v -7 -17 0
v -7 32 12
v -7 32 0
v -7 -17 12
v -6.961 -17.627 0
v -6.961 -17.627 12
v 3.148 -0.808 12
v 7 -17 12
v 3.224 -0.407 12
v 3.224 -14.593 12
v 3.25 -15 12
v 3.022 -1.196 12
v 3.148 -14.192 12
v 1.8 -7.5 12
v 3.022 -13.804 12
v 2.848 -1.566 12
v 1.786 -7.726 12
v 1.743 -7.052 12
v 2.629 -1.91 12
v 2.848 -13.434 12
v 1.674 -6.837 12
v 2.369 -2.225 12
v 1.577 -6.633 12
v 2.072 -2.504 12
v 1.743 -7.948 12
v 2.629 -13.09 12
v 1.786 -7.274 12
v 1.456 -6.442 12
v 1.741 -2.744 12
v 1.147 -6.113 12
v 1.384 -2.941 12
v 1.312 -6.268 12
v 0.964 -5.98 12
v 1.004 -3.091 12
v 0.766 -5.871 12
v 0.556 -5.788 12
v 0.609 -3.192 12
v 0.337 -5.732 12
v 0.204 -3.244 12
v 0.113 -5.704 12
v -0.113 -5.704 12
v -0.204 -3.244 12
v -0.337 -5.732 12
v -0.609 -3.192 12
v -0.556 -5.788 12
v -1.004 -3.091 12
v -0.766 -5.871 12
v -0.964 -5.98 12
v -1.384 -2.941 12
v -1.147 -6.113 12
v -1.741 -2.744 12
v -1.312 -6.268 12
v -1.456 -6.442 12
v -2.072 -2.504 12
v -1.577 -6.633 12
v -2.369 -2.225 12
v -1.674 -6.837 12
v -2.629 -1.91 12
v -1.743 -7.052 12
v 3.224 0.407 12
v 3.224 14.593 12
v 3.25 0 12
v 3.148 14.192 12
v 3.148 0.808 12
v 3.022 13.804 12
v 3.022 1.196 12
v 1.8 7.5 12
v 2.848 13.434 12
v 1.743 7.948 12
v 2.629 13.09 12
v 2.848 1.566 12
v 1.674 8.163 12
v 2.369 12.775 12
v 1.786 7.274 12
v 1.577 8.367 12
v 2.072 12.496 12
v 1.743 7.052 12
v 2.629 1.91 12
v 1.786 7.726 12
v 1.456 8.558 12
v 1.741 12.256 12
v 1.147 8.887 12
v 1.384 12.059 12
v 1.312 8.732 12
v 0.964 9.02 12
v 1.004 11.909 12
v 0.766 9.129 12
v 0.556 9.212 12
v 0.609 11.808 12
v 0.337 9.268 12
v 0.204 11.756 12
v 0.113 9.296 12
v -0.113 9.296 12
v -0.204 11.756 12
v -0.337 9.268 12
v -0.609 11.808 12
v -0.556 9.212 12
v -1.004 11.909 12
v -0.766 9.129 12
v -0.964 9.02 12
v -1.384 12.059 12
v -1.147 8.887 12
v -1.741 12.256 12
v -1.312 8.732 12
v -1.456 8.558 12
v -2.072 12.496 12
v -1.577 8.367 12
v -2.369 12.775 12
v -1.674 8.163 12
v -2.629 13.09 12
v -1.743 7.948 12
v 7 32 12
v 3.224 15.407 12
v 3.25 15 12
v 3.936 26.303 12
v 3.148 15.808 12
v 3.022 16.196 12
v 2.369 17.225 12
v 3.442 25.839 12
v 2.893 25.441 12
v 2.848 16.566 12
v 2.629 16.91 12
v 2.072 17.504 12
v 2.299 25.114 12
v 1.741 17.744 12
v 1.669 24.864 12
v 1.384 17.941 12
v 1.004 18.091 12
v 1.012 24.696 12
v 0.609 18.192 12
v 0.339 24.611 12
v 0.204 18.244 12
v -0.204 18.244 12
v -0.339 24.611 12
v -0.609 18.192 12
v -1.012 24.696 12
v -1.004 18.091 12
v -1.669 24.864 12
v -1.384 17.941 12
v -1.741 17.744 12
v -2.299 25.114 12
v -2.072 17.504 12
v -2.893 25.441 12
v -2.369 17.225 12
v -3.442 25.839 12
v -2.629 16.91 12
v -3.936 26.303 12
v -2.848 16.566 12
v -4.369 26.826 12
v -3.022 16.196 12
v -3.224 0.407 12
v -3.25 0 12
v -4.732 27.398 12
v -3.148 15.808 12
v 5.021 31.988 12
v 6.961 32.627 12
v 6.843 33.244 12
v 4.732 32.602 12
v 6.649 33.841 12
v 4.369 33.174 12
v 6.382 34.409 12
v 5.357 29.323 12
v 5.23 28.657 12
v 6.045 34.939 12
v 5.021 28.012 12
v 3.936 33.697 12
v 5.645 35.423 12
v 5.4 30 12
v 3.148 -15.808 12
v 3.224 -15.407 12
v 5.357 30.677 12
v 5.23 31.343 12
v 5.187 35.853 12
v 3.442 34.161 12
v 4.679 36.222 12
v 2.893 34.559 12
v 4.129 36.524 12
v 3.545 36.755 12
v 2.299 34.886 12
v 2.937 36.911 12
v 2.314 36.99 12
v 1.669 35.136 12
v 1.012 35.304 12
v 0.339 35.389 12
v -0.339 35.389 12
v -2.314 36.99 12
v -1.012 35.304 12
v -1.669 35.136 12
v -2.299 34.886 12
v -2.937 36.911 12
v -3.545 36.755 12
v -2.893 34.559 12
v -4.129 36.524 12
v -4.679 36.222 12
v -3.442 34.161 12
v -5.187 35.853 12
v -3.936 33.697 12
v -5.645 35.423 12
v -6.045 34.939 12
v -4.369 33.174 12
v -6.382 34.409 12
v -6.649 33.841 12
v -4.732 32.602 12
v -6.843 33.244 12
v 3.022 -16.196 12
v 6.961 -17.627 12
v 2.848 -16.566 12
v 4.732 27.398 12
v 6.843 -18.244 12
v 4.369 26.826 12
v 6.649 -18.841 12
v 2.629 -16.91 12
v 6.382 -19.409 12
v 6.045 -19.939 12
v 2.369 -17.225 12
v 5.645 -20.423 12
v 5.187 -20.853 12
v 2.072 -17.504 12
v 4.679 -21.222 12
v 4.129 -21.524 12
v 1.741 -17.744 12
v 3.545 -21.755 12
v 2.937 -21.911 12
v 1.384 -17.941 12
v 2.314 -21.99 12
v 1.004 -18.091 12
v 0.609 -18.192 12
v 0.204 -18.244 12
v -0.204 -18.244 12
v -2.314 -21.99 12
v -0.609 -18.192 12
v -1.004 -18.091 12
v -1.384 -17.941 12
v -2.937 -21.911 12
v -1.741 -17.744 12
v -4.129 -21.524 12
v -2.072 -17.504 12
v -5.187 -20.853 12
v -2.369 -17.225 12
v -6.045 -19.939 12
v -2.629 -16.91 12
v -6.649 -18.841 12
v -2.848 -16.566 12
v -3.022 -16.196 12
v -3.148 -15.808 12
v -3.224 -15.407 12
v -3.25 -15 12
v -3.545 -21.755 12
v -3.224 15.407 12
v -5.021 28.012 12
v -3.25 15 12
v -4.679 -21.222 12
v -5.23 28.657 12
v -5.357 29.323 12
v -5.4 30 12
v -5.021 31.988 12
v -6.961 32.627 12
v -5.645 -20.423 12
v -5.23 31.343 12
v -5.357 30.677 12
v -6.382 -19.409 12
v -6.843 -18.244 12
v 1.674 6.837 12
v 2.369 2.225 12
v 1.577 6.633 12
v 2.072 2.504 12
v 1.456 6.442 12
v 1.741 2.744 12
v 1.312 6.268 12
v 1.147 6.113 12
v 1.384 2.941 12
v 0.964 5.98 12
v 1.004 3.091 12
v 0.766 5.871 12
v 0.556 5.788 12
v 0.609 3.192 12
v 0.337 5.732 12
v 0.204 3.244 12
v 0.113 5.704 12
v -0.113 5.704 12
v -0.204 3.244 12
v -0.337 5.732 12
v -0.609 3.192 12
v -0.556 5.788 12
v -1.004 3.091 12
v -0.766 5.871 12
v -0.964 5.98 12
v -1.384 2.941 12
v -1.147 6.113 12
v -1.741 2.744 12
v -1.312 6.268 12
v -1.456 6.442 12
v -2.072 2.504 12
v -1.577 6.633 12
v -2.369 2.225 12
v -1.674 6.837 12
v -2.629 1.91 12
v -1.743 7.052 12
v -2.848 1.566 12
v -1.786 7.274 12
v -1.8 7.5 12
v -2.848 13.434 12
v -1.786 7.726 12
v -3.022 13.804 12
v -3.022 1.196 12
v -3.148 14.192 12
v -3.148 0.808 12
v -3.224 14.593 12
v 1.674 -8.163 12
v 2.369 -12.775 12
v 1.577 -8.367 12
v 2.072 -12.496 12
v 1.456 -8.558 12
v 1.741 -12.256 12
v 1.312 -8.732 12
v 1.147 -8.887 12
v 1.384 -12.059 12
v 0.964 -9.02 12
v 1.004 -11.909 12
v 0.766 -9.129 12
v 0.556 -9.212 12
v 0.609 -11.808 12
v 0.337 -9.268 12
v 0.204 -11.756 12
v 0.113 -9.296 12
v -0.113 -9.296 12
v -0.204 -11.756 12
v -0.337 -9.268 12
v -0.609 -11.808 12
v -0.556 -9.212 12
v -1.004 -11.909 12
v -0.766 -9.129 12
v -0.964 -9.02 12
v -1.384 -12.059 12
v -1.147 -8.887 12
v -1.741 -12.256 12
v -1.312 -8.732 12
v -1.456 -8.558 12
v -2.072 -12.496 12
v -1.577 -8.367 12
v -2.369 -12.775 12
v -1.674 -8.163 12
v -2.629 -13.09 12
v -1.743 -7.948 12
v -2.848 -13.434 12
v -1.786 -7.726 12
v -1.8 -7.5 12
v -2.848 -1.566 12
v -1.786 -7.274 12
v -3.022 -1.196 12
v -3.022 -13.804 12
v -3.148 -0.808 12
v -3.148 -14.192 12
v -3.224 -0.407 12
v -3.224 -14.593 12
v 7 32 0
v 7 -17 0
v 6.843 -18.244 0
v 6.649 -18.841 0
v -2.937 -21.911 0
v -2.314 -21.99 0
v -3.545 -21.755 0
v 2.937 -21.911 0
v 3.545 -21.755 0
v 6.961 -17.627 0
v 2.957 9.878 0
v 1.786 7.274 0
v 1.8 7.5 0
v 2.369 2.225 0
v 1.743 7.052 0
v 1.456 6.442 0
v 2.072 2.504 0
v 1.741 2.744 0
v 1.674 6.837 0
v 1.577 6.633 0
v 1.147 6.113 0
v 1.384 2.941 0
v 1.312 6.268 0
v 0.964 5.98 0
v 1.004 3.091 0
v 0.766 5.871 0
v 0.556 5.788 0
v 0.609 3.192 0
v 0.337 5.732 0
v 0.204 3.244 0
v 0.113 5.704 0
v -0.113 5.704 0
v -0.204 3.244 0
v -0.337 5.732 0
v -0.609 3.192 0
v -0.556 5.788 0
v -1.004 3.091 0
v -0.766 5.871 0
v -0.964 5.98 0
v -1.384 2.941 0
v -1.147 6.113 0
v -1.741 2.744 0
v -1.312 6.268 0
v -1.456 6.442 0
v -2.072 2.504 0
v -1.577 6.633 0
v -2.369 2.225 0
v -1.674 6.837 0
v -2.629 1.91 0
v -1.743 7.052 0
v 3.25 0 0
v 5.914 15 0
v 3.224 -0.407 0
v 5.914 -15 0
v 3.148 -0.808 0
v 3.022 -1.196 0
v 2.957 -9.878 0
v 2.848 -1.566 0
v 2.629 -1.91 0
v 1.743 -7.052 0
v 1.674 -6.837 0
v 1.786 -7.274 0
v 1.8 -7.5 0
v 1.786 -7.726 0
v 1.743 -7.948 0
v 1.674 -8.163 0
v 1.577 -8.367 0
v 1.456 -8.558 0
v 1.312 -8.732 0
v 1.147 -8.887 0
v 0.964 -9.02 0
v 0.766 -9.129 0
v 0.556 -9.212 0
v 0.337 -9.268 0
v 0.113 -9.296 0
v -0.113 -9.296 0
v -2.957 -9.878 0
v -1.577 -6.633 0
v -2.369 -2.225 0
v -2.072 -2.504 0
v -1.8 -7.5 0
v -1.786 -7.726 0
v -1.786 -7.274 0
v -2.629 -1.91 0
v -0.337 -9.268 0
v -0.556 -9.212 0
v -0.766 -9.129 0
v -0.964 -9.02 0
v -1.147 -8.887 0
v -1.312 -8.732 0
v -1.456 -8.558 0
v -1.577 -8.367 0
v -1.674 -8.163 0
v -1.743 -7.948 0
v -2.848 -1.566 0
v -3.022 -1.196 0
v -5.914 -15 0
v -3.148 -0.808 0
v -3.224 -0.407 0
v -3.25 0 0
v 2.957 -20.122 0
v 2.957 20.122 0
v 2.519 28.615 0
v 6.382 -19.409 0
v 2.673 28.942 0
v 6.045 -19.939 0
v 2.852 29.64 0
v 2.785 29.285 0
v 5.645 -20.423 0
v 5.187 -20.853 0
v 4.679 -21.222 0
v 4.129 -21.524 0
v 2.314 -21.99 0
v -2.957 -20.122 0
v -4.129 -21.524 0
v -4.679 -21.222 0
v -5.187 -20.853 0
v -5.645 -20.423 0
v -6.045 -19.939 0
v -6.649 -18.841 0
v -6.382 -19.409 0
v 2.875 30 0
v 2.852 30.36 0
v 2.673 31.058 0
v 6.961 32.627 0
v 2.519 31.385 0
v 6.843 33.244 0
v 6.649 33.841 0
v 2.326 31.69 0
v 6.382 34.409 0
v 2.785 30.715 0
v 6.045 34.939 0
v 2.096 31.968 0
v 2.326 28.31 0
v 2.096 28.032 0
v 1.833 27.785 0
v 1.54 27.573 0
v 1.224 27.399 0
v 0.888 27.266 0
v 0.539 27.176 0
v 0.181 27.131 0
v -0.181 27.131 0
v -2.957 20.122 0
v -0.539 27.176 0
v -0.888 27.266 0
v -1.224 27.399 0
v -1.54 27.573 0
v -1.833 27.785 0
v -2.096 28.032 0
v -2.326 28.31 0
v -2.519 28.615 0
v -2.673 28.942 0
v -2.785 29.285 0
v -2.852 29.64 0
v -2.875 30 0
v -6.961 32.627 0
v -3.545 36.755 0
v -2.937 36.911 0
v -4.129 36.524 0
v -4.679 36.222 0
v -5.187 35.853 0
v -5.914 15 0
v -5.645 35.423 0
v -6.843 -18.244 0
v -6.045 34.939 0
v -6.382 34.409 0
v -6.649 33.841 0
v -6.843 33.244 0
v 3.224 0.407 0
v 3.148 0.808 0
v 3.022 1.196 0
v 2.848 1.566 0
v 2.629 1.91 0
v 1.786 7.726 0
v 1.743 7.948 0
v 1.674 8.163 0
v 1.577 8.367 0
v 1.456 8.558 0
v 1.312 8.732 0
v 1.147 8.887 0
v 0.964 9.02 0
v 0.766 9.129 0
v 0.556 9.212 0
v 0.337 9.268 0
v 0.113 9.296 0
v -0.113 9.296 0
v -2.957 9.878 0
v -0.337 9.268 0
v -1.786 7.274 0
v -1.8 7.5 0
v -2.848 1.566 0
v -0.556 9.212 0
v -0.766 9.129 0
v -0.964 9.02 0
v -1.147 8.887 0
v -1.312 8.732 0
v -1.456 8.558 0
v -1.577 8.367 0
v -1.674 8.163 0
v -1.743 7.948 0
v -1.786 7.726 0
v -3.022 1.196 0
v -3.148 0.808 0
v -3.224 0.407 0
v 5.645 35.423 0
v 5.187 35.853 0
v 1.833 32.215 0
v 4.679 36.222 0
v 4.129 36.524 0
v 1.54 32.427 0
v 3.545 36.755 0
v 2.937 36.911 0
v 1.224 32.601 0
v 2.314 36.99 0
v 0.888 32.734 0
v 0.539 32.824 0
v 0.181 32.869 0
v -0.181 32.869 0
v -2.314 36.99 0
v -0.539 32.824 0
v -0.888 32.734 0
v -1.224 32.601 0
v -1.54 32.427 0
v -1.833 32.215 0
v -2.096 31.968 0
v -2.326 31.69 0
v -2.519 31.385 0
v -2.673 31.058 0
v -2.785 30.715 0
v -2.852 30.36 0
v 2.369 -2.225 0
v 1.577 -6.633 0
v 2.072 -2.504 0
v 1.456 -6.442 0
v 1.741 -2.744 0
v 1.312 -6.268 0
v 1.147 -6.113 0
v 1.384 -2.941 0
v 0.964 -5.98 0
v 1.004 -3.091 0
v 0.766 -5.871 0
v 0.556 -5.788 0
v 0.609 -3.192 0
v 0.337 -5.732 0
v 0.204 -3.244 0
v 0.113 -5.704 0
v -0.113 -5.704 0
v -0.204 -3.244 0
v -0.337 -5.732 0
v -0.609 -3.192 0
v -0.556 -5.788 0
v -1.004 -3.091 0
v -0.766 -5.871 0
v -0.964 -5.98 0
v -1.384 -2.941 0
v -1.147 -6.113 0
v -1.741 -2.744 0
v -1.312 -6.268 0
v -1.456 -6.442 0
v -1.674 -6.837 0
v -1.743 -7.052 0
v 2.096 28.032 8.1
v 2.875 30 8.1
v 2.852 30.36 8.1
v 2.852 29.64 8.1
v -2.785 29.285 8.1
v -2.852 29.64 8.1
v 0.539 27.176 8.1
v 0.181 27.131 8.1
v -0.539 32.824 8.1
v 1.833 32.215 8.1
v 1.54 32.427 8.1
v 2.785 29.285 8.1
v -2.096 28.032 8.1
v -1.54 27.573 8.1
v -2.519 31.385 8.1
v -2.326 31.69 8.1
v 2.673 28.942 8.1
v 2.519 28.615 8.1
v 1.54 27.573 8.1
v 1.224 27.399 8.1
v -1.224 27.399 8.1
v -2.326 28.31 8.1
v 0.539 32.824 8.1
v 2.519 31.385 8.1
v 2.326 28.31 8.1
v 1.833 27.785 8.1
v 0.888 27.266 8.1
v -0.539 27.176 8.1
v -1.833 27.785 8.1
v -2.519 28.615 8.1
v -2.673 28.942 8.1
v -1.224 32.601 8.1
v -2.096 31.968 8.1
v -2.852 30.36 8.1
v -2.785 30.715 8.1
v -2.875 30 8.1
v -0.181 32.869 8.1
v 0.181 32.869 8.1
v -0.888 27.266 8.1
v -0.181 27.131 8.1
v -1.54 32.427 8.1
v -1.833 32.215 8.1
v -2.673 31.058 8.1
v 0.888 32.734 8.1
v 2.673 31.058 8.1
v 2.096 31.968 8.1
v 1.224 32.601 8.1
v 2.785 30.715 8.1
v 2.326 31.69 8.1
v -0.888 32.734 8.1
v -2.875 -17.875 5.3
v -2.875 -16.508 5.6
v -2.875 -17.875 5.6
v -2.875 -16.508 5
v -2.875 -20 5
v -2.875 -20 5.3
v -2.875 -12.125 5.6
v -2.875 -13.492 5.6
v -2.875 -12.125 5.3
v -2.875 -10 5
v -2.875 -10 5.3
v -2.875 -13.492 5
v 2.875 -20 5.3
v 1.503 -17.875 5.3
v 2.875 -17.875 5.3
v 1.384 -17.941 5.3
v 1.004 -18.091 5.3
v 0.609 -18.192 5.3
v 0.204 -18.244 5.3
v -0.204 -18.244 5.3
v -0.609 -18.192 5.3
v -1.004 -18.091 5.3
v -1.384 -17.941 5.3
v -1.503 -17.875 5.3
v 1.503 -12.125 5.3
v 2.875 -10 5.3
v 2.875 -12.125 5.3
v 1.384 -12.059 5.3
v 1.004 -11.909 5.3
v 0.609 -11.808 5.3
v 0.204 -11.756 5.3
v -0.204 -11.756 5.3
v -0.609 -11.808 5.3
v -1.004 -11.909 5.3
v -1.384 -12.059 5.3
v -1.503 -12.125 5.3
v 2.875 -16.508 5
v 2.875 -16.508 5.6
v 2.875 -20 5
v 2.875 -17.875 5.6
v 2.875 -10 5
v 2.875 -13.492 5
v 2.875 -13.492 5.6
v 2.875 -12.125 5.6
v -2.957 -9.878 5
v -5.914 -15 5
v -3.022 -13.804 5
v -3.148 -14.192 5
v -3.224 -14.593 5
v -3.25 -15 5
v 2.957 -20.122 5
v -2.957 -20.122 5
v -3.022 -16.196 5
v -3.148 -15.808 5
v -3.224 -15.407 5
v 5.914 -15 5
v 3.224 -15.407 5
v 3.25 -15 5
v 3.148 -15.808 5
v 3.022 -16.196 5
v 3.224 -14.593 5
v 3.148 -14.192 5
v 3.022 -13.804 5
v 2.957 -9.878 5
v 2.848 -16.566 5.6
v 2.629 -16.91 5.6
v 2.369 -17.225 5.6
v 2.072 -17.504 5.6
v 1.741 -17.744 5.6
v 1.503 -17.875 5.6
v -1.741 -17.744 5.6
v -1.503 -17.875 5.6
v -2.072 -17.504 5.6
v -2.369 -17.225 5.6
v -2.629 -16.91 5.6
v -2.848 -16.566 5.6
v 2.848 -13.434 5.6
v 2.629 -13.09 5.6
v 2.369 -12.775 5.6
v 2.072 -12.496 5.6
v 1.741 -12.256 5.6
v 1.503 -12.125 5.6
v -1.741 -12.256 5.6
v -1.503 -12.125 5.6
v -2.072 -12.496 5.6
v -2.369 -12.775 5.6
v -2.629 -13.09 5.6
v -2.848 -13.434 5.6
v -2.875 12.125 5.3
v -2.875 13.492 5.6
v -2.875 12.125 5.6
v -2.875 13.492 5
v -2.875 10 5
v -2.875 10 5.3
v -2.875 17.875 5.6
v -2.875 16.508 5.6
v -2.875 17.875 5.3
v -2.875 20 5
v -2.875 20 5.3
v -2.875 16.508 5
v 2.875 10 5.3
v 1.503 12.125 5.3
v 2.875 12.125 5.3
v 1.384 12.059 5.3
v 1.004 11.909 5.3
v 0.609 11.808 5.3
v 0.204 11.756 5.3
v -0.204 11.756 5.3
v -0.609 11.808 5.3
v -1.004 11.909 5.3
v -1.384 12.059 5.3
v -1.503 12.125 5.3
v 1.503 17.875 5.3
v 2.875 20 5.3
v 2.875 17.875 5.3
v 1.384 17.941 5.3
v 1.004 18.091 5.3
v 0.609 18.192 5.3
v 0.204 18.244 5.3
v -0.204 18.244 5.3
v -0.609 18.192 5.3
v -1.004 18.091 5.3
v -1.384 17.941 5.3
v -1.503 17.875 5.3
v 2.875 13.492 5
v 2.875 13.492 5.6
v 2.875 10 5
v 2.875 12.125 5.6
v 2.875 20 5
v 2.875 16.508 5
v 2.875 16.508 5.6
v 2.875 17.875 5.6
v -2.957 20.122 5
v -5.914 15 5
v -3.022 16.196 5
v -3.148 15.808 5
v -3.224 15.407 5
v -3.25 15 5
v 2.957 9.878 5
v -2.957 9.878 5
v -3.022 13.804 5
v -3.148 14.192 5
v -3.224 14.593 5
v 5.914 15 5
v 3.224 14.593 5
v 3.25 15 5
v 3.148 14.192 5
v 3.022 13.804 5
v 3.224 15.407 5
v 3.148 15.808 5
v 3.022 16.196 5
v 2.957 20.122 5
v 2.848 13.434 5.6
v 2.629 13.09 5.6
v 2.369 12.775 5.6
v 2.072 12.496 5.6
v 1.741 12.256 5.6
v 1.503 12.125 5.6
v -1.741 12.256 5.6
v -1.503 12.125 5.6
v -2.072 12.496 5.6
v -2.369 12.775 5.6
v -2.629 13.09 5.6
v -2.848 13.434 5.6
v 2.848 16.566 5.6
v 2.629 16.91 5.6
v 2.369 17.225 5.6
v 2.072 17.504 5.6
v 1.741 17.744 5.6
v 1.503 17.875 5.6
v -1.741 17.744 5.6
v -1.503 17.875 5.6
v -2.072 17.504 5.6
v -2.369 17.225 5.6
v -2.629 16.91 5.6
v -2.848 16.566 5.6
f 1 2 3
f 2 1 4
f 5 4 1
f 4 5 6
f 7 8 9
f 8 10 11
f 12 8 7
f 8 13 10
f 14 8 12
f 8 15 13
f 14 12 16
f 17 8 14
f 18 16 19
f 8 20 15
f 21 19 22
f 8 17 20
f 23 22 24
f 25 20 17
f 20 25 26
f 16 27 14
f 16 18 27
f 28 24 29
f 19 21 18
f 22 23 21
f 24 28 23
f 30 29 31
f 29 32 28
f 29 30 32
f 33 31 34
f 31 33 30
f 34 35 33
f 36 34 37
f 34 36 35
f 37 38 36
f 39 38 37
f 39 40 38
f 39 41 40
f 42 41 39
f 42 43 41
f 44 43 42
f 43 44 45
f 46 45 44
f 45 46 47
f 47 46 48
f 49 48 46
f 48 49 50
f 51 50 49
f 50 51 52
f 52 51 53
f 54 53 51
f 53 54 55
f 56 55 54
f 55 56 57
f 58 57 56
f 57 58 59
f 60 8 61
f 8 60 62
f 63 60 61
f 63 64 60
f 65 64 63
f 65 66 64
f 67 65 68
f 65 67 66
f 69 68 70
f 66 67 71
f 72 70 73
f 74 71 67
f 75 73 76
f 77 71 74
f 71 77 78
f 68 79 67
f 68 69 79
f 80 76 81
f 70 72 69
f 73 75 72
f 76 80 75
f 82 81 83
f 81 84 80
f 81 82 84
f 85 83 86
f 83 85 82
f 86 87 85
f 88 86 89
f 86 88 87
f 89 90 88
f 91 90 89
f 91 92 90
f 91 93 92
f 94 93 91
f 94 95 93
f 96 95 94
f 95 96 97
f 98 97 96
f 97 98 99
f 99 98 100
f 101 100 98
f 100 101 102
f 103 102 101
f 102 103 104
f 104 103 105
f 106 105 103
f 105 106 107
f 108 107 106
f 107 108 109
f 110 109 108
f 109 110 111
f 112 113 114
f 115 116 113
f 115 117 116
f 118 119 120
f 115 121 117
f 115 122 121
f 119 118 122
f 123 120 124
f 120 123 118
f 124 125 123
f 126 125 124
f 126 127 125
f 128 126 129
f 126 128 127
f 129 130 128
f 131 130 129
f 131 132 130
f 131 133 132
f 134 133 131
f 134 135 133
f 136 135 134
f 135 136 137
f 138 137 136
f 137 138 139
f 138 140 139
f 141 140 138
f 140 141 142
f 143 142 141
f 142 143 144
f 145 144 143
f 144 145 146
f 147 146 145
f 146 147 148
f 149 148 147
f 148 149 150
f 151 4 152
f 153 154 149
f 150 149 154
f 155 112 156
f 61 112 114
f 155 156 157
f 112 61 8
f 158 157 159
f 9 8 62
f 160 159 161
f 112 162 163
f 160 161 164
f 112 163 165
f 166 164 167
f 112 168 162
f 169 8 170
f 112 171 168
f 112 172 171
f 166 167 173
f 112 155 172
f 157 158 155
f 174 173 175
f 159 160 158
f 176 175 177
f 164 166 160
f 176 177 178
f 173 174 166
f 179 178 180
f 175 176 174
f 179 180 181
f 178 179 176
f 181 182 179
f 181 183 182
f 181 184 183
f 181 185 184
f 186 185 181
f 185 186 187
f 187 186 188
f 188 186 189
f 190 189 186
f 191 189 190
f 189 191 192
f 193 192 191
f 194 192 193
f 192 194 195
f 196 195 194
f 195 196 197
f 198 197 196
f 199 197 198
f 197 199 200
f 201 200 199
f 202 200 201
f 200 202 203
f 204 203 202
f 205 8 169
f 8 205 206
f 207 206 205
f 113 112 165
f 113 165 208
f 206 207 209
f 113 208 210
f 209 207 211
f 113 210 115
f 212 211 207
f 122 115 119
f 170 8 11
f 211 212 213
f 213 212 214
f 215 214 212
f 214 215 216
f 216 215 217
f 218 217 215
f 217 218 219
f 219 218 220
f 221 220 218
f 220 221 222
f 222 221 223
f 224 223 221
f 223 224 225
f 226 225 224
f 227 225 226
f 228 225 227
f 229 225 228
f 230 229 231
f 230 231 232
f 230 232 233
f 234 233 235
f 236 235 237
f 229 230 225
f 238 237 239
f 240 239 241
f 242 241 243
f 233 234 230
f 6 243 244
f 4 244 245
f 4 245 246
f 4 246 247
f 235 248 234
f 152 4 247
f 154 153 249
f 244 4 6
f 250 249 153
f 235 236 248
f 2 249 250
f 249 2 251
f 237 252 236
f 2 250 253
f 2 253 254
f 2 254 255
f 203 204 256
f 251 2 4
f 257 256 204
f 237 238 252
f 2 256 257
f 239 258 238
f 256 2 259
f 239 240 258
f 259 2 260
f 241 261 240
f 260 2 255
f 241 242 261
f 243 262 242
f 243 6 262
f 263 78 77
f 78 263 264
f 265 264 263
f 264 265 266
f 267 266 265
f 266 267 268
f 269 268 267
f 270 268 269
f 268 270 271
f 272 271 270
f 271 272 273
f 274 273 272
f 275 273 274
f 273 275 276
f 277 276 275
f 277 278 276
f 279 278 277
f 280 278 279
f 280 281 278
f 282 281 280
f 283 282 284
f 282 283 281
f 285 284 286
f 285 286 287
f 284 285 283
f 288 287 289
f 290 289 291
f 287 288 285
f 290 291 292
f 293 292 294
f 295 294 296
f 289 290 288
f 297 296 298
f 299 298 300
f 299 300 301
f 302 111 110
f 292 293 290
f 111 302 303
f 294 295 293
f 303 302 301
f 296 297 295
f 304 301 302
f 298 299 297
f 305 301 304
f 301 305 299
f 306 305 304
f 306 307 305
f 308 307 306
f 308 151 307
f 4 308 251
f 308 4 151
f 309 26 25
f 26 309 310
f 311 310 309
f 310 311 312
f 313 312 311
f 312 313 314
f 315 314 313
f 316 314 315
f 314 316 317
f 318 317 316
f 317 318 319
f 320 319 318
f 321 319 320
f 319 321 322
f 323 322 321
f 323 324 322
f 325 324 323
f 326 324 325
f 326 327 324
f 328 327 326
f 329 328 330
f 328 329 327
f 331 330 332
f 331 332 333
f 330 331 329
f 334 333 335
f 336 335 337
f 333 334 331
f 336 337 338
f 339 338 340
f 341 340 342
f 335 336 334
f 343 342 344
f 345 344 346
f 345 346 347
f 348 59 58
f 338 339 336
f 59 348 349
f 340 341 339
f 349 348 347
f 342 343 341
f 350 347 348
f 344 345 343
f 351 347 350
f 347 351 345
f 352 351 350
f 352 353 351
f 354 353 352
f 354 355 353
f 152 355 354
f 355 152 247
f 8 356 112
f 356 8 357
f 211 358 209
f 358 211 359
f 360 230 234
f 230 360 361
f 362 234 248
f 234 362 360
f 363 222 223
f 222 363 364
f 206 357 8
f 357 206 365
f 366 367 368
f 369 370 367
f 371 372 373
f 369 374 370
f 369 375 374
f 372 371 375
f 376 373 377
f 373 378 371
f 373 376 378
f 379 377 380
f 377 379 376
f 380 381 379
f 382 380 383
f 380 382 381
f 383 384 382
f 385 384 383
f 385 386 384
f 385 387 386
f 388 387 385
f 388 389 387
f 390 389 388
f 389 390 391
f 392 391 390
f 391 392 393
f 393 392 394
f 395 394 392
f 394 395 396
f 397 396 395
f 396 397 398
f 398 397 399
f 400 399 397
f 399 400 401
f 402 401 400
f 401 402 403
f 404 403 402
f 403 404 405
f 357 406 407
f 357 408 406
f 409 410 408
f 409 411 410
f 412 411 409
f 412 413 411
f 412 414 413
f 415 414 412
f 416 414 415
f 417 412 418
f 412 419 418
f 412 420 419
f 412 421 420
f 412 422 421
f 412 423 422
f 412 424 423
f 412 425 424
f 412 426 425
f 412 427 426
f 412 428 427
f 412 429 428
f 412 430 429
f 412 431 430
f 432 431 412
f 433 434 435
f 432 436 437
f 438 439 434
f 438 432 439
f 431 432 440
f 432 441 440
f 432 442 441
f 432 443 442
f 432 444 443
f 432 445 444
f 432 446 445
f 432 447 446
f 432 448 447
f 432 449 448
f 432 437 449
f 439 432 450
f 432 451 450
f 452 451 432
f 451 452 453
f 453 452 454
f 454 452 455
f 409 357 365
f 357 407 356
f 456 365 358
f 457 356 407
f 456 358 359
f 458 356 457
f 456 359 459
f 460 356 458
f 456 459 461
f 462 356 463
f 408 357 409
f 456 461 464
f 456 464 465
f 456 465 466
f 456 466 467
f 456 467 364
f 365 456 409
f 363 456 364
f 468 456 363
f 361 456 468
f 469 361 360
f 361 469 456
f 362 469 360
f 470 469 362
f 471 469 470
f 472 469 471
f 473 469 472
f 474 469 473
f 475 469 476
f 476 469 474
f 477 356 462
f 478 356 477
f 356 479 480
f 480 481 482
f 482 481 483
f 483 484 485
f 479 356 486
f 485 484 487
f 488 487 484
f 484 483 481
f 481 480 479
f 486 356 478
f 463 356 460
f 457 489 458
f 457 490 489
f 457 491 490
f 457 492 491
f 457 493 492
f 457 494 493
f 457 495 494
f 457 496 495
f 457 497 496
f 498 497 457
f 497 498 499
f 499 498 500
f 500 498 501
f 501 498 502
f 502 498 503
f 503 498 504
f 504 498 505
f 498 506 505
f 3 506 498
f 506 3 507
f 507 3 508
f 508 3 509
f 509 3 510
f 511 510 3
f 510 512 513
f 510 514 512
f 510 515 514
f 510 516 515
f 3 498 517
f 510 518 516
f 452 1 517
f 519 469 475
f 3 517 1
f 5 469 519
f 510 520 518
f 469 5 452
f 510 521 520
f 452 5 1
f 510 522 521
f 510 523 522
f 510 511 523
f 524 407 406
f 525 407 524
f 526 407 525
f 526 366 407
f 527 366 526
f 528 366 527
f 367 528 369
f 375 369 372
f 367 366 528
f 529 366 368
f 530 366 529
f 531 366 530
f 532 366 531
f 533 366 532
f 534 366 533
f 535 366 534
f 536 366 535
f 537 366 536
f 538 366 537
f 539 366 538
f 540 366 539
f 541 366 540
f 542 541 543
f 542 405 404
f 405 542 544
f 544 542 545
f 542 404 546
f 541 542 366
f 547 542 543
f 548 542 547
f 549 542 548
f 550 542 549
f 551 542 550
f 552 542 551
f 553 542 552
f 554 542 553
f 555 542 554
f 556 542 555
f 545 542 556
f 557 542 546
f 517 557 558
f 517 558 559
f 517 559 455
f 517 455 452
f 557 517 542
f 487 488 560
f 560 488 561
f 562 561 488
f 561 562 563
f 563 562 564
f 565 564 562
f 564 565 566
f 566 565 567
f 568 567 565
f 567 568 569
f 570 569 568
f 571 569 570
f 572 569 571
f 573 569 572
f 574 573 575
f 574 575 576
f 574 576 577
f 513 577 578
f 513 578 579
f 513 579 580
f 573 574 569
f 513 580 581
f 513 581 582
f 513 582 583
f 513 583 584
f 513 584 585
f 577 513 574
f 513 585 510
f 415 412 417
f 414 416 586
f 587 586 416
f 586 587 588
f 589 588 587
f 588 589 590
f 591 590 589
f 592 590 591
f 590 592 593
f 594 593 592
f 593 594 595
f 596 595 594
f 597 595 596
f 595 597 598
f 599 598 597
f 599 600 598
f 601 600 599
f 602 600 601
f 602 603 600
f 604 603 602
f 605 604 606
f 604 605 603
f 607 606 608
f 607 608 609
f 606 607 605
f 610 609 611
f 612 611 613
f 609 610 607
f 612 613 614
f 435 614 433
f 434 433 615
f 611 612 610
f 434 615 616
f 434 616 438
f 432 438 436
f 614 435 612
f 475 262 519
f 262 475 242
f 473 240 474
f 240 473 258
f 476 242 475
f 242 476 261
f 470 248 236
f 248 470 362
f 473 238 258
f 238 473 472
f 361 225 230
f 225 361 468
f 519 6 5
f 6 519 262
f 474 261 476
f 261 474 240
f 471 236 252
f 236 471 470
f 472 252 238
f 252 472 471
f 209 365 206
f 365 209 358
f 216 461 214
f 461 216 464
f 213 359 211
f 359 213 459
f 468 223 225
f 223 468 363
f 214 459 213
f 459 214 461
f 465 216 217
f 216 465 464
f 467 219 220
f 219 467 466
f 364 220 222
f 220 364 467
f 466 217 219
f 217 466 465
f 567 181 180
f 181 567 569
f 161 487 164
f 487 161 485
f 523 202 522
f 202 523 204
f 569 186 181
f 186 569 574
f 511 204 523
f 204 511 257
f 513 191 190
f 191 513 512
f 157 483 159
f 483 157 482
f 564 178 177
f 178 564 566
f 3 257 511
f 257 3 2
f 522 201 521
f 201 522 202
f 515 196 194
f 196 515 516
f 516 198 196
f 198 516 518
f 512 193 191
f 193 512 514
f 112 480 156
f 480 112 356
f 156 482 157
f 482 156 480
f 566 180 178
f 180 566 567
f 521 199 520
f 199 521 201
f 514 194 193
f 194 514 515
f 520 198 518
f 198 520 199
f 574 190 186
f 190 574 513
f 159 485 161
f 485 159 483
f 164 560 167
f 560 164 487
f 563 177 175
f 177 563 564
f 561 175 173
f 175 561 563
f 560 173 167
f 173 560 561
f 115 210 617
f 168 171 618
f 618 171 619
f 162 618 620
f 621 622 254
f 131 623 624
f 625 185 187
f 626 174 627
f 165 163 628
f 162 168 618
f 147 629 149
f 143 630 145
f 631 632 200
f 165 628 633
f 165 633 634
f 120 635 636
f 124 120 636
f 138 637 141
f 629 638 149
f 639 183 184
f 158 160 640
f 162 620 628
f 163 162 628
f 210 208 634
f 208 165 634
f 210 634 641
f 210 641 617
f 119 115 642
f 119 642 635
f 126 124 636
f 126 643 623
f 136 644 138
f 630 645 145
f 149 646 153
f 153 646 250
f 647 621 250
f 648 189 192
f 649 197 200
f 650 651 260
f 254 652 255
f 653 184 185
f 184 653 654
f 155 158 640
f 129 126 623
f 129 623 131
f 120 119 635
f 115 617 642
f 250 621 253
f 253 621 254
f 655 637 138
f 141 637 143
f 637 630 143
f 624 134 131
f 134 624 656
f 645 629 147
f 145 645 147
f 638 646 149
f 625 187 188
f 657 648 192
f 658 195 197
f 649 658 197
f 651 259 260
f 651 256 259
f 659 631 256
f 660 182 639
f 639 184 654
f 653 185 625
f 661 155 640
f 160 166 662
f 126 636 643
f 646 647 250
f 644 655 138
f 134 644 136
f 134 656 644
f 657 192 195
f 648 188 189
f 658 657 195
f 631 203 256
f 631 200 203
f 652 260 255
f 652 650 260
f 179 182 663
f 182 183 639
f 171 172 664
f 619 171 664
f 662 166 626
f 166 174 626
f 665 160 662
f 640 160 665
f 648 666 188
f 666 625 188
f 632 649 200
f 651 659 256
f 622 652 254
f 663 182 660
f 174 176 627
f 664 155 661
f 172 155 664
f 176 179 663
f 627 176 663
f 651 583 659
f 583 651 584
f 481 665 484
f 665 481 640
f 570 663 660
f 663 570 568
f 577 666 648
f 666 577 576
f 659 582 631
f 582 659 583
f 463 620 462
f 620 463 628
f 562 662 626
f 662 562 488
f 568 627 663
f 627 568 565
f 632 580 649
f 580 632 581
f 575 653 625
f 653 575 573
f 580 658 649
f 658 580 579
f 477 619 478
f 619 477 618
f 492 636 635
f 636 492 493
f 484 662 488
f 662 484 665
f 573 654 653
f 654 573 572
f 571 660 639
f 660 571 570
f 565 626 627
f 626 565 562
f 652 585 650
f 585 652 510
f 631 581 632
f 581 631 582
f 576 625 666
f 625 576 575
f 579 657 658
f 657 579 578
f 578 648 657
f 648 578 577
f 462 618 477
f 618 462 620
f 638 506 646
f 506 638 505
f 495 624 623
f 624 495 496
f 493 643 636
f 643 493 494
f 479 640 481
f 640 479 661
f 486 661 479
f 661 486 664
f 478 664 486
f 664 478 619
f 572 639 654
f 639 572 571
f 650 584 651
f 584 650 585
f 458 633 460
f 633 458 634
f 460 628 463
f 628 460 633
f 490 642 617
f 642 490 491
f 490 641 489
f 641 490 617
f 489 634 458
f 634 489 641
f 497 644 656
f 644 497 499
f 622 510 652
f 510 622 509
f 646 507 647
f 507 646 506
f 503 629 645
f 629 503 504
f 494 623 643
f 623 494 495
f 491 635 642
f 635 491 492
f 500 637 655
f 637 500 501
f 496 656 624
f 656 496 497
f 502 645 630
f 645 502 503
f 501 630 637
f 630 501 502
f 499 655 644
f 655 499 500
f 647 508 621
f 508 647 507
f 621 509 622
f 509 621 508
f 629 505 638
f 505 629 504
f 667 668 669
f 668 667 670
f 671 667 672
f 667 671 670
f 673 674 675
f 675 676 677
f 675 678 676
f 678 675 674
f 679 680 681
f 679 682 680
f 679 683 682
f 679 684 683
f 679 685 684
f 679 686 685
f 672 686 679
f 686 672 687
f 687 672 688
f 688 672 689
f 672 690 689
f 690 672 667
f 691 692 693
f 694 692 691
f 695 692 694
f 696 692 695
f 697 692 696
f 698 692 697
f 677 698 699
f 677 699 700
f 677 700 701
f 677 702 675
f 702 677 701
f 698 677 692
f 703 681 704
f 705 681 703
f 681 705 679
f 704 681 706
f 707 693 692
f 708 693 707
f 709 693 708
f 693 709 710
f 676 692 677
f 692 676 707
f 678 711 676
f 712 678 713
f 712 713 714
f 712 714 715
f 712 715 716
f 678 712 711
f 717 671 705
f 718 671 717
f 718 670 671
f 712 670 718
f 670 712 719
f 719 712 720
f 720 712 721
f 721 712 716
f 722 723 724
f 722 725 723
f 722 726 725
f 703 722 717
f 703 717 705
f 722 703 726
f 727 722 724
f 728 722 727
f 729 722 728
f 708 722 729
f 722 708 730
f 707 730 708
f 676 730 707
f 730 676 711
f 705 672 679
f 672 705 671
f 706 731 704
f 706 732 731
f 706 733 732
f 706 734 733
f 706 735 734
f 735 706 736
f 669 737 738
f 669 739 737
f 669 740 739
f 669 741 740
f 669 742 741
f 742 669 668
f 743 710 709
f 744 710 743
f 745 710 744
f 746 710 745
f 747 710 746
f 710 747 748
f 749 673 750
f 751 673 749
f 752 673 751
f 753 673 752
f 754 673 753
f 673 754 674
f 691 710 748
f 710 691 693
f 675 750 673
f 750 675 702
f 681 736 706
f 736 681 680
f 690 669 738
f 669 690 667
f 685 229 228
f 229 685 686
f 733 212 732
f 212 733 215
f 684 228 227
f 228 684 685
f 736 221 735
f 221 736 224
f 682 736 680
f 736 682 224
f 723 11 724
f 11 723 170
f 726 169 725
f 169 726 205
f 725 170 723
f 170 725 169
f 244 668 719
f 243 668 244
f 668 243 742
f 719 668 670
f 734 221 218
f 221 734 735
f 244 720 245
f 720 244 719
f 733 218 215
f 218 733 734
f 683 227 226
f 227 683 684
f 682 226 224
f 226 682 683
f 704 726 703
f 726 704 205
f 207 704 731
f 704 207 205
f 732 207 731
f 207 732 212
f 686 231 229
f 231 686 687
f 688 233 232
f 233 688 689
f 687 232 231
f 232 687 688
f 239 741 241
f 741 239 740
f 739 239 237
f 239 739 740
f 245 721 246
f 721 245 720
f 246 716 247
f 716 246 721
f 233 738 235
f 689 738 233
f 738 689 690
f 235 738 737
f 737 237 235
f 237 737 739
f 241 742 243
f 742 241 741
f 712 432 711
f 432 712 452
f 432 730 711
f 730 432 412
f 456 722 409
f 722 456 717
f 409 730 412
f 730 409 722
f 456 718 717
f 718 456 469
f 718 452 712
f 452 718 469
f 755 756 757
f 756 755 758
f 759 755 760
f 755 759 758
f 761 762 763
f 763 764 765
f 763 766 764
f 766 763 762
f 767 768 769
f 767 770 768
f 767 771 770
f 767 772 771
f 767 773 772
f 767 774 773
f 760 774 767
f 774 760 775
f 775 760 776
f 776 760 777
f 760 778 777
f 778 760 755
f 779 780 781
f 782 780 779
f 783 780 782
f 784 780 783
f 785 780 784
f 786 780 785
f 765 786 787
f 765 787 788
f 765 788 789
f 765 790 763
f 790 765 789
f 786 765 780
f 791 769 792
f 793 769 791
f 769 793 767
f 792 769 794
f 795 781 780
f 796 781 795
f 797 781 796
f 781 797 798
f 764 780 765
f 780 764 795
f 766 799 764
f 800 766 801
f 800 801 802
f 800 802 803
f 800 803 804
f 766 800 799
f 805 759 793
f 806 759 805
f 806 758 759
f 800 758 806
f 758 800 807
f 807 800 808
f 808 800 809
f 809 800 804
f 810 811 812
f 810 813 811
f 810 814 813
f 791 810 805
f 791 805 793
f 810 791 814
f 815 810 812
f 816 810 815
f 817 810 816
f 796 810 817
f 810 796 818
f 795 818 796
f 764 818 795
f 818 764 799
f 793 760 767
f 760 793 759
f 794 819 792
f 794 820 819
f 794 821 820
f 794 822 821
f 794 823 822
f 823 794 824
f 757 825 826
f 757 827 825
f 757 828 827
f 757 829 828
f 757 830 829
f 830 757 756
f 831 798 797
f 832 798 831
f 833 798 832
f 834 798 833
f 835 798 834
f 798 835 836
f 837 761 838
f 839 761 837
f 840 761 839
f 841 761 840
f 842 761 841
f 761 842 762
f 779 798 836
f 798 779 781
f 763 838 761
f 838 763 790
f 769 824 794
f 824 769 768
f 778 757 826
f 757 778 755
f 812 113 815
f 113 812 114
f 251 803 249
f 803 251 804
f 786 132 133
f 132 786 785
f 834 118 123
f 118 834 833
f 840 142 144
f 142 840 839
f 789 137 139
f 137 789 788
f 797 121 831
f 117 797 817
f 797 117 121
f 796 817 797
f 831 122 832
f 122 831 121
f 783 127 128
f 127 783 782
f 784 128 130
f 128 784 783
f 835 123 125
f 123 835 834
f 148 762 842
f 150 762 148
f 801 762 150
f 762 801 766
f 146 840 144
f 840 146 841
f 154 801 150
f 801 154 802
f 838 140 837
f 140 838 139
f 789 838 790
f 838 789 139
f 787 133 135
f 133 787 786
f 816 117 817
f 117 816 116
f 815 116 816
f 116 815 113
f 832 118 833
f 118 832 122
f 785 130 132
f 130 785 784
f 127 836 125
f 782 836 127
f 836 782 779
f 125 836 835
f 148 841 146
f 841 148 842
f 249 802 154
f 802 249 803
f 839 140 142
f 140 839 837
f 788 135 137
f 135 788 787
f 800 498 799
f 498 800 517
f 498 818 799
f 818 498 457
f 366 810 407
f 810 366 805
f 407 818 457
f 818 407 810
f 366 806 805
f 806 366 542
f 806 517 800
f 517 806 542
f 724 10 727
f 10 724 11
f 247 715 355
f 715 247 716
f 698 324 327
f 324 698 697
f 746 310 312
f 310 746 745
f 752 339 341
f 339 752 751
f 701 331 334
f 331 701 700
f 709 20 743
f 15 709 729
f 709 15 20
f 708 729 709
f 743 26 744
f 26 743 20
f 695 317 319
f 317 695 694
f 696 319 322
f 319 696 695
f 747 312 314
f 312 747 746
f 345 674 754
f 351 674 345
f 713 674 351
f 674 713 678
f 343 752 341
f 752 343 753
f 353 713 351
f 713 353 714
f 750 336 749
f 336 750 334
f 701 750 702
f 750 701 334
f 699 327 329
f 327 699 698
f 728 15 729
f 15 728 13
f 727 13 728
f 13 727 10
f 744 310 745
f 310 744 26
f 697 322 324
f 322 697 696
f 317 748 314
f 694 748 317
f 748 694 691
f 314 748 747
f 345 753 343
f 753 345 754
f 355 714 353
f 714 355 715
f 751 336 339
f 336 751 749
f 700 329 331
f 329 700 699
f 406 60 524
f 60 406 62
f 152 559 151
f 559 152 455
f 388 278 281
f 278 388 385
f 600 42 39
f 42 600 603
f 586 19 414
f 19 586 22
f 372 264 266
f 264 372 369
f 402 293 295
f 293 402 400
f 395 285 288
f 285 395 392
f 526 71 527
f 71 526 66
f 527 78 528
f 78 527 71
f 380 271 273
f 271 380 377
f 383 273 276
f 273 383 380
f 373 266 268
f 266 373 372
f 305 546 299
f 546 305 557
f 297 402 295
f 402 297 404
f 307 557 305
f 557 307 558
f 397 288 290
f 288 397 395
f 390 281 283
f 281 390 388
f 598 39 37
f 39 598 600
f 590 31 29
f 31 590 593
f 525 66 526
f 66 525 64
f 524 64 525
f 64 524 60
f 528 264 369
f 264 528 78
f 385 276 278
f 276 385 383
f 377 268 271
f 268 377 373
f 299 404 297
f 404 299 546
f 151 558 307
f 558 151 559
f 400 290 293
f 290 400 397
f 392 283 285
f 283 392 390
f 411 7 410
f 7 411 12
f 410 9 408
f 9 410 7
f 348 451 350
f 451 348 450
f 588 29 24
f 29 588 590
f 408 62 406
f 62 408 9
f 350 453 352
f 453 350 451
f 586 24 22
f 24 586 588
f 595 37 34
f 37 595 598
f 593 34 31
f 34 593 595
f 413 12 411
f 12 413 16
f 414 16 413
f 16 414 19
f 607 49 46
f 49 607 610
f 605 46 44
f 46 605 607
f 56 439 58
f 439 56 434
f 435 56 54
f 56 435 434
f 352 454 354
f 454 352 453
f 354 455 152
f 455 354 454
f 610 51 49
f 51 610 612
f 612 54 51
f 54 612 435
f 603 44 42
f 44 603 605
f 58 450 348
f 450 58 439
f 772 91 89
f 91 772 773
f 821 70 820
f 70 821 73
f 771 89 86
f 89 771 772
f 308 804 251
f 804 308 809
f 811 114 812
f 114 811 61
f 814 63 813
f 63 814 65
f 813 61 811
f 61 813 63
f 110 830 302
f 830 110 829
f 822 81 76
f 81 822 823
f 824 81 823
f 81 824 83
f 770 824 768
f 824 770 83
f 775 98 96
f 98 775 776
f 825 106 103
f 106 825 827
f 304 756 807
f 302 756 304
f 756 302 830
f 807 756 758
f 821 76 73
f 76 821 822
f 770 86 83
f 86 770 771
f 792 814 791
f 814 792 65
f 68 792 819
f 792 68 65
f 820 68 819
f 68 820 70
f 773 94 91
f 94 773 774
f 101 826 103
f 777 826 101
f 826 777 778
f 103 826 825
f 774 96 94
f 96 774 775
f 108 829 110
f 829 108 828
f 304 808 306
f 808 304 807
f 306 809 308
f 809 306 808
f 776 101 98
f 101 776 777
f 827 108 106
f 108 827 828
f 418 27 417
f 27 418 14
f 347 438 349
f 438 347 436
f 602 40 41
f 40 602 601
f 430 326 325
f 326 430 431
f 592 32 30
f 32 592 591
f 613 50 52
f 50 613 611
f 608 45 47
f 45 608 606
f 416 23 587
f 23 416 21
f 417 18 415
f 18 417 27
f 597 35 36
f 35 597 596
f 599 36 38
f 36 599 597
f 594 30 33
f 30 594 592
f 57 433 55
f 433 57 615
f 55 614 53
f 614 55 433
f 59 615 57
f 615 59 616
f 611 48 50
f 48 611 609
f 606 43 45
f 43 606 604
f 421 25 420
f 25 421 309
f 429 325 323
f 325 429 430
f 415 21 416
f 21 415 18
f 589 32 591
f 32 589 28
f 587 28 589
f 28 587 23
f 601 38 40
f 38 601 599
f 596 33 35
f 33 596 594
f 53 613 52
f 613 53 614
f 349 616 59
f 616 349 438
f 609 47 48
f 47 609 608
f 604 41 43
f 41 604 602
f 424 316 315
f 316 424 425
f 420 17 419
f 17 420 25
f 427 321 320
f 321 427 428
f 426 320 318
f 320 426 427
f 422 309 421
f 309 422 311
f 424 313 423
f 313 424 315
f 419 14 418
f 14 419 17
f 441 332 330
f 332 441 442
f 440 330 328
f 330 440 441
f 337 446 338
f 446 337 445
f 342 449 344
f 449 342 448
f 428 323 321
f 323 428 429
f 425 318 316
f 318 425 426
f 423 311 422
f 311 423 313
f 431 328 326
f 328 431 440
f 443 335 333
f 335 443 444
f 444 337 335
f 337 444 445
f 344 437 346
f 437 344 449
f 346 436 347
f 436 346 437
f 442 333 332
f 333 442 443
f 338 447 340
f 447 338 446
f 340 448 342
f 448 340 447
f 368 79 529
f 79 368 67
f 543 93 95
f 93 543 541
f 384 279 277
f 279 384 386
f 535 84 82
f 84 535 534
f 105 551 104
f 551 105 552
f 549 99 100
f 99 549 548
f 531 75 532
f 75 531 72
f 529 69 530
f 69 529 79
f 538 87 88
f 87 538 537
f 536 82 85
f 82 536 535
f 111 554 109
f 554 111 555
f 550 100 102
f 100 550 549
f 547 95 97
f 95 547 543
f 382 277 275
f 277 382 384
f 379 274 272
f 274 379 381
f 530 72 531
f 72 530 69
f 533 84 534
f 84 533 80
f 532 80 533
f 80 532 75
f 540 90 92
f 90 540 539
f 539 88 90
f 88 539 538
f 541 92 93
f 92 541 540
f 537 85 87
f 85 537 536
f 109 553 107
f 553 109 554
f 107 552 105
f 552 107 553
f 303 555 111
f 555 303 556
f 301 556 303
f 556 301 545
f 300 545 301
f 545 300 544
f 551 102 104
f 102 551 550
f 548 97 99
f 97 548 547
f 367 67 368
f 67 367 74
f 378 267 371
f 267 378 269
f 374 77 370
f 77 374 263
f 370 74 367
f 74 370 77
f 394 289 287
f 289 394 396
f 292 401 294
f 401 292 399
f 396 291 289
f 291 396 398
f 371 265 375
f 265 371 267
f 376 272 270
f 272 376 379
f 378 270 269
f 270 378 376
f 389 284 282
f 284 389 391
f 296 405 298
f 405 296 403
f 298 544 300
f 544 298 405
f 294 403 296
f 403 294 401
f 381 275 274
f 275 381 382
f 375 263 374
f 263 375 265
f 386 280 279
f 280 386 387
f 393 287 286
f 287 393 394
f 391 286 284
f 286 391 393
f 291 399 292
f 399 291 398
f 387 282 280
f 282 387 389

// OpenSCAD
$fn = 50;


difference() {
	union() {
		hull() {
			translate(v = [-2.0000000000, 17.0000000000, 0]) {
				cylinder(h = 12, r = 5);
			}
			translate(v = [2.0000000000, 17.0000000000, 0]) {
				cylinder(h = 12, r = 5);
			}
			translate(v = [-2.0000000000, -17.0000000000, 0]) {
				cylinder(h = 12, r = 5);
			}
			translate(v = [2.0000000000, -17.0000000000, 0]) {
				cylinder(h = 12, r = 5);
			}
		}
		translate(v = [0.0000000000, 22.5000000000, 0]) {
			hull() {
				translate(v = [-2.0000000000, 9.5000000000, 0]) {
					cylinder(h = 12, r = 5);
				}
				translate(v = [2.0000000000, 9.5000000000, 0]) {
					cylinder(h = 12, r = 5);
				}
				translate(v = [-2.0000000000, -9.5000000000, 0]) {
					cylinder(h = 12, r = 5);
				}
				translate(v = [2.0000000000, -9.5000000000, 0]) {
					cylinder(h = 12, r = 5);
				}
			}
		}
		translate(v = [0.0000000000, 22.5000000000, 0]) {
			hull() {
				translate(v = [-2.0000000000, 9.5000000000, 0]) {
					cylinder(h = 12, r = 5);
				}
				translate(v = [2.0000000000, 9.5000000000, 0]) {
					cylinder(h = 12, r = 5);
				}
				translate(v = [-2.0000000000, -9.5000000000, 0]) {
					cylinder(h = 12, r = 5);
				}
				translate(v = [2.0000000000, -9.5000000000, 0]) {
					cylinder(h = 12, r = 5);
				}
			}
		}
	}
	union() {
		translate(v = [0.0000000000, 30.0000000000, 12]) {
			rotate(a = [0, 0, 0]) {
				difference() {
					union() {
						#translate(v = [0, 0, -12.0000000000]) {
							cylinder(h = 12, r = 2.6000000000);
						}
						#translate(v = [0, 0, -3.9000000000]) {
							cylinder(h = 3.9000000000, r1 = 2.8750000000, r2 = 5.4000000000);
						}
						#translate(v = [0, 0, -12.0000000000]) {
							cylinder(h = 12, r = 2.8750000000);
						}
						#translate(v = [0, 0, -12.0000000000]) {
							cylinder(h = 12, r = 2.6000000000);
						}
					}
					union();
				}
			}
		}
		translate(v = [0.0000000000, 30.0000000000, 12]) {
			rotate(a = [0, 0, 0]) {
				difference() {
					union() {
						#translate(v = [0, 0, -12.0000000000]) {
							cylinder(h = 12, r = 2.6000000000);
						}
						#translate(v = [0, 0, -3.9000000000]) {
							cylinder(h = 3.9000000000, r1 = 2.8750000000, r2 = 5.4000000000);
						}
						#translate(v = [0, 0, -12.0000000000]) {
							cylinder(h = 12, r = 2.8750000000);
						}
						#translate(v = [0, 0, -12.0000000000]) {
							cylinder(h = 12, r = 2.6000000000);
						}
					}
					union();
				}
			}
		}
		translate(v = [0.0000000000, -15.0000000000, 0]) {
			rotate(a = [0, 0, 0]) {
				difference() {
					union() {
						#translate(v = [-2.8750000000, -5.0000000000, -0.3000000000]) {
							cube(size = [5.7500000000, 10, 0.3000000000]);
						}
						#translate(v = [-2.8750000000, -2.8750000000, -0.6000000000]) {
							cube(size = [5.7500000000, 5.7500000000, 0.3000000000]);
						}
						#translate(v = [-2.8750000000, -5.0000000000, 5]) {
							cube(size = [5.7500000000, 10, 0.3000000000]);
						}
						#translate(v = [-2.8750000000, -2.8750000000, 5.3000000000]) {
							cube(size = [5.7500000000, 5.7500000000, 0.3000000000]);
						}
						#translate(v = [0, 0, -100.0000000000]) {
							cylinder(h = 200, r = 3.2500000000);
						}
						#linear_extrude(height = 5) {
							polygon(points = [[5.9142500000, 0.0000000000], [2.9571250000, 5.1218907443], [-2.9571250000, 5.1218907443], [-5.9142500000, 0.0000000000], [-2.9571250000, -5.1218907443], [2.9571250000, -5.1218907443]]);
						}
						#translate(v = [-2.8750000000, -5.0000000000, -0.3000000000]) {
							cube(size = [5.7500000000, 10, 0.3000000000]);
						}
						#translate(v = [-2.8750000000, -2.8750000000, -0.6000000000]) {
							cube(size = [5.7500000000, 5.7500000000, 0.3000000000]);
						}
						#translate(v = [-2.8750000000, -5.0000000000, 5]) {
							cube(size = [5.7500000000, 10, 0.3000000000]);
						}
						#translate(v = [-2.8750000000, -2.8750000000, 5.3000000000]) {
							cube(size = [5.7500000000, 5.7500000000, 0.3000000000]);
						}
						#translate(v = [0, 0, -100.0000000000]) {
							cylinder(h = 200, r = 3.2500000000);
						}
						#translate(v = [-2.8750000000, -5.0000000000, -0.3000000000]) {
							cube(size = [5.7500000000, 10, 0.3000000000]);
						}
						#translate(v = [-2.8750000000, -2.8750000000, -0.6000000000]) {
							cube(size = [5.7500000000, 5.7500000000, 0.3000000000]);
						}
						#translate(v = [-2.8750000000, -5.0000000000, 5]) {
							cube(size = [5.7500000000, 10, 0.3000000000]);
						}
						#translate(v = [-2.8750000000, -2.8750000000, 5.3000000000]) {
							cube(size = [5.7500000000, 5.7500000000, 0.3000000000]);
						}
						#translate(v = [0, 0, -100.0000000000]) {
							cylinder(h = 200, r = 3.2500000000);
						}
					}
					union();
				}
			}
		}
		translate(v = [0.0000000000, 15.0000000000, 0]) {
			rotate(a = [0, 0, 0]) {
				difference() {
					union() {
						#translate(v = [-2.8750000000, -5.0000000000, -0.3000000000]) {
							cube(size = [5.7500000000, 10, 0.3000000000]);
						}
						#translate(v = [-2.8750000000, -2.8750000000, -0.6000000000]) {
							cube(size = [5.7500000000, 5.7500000000, 0.3000000000]);
						}
						#translate(v = [-2.8750000000, -5.0000000000, 5]) {
							cube(size = [5.7500000000, 10, 0.3000000000]);
						}
						#translate(v = [-2.8750000000, -2.8750000000, 5.3000000000]) {
							cube(size = [5.7500000000, 5.7500000000, 0.3000000000]);
						}
						#translate(v = [0, 0, -100.0000000000]) {
							cylinder(h = 200, r = 3.2500000000);
						}
						#linear_extrude(height = 5) {
							polygon(points = [[5.9142500000, 0.0000000000], [2.9571250000, 5.1218907443], [-2.9571250000, 5.1218907443], [-5.9142500000, 0.0000000000], [-2.9571250000, -5.1218907443], [2.9571250000, -5.1218907443]]);
						}
						#translate(v = [-2.8750000000, -5.0000000000, -0.3000000000]) {
							cube(size = [5.7500000000, 10, 0.3000000000]);
						}
						#translate(v = [-2.8750000000, -2.8750000000, -0.6000000000]) {
							cube(size = [5.7500000000, 5.7500000000, 0.3000000000]);
						}
						#translate(v = [-2.8750000000, -5.0000000000, 5]) {
							cube(size = [5.7500000000, 10, 0.3000000000]);
						}
						#translate(v = [-2.8750000000, -2.8750000000, 5.3000000000]) {
							cube(size = [5.7500000000, 5.7500000000, 0.3000000000]);
						}
						#translate(v = [0, 0, -100.0000000000]) {
							cylinder(h = 200, r = 3.2500000000);
						}
						#translate(v = [-2.8750000000, -5.0000000000, -0.3000000000]) {
							cube(size = [5.7500000000, 10, 0.3000000000]);
						}
						#translate(v = [-2.8750000000, -2.8750000000, -0.6000000000]) {
							cube(size = [5.7500000000, 5.7500000000, 0.3000000000]);
						}
						#translate(v = [-2.8750000000, -5.0000000000, 5]) {
							cube(size = [5.7500000000, 10, 0.3000000000]);
						}
						#translate(v = [-2.8750000000, -2.8750000000, 5.3000000000]) {
							cube(size = [5.7500000000, 5.7500000000, 0.3000000000]);
						}
						#translate(v = [0, 0, -100.0000000000]) {
							cylinder(h = 200, r = 3.2500000000);
						}
					}
					union();
				}
			}
		}
		translate(v = [0.0000000000, -15.0000000000, 0]) {
			translate(v = [0, 0, -100]) {
				cylinder(h = 200, r = 3.2500000000);
			}
		}
		translate(v = [0, 0, -100]) {
			cylinder(h = 200, r = 3.2500000000);
		}
		translate(v = [0.0000000000, 15.0000000000, 0]) {
			translate(v = [0, 0, -100]) {
				cylinder(h = 200, r = 3.2500000000);
			}
		}
		translate(v = [0.0000000000, -15.0000000000, 0]) {
			translate(v = [0, 0, -100]) {
				cylinder(h = 200, r = 1.8000000000);
			}
		}
		translate(v = [0.0000000000, -7.5000000000, 0]) {
			translate(v = [0, 0, -100]) {
				cylinder(h = 200, r = 1.8000000000);
			}
		}
		translate(v = [0, 0, -100]) {
			cylinder(h = 200, r = 1.8000000000);
		}
		translate(v = [0.0000000000, 7.5000000000, 0]) {
			translate(v = [0, 0, -100]) {
				cylinder(h = 200, r = 1.8000000000);
			}
		}
		translate(v = [0.0000000000, 15.0000000000, 0]) {
			translate(v = [0, 0, -100]) {
				cylinder(h = 200, r = 1.8000000000);
			}
		}
	}
}
